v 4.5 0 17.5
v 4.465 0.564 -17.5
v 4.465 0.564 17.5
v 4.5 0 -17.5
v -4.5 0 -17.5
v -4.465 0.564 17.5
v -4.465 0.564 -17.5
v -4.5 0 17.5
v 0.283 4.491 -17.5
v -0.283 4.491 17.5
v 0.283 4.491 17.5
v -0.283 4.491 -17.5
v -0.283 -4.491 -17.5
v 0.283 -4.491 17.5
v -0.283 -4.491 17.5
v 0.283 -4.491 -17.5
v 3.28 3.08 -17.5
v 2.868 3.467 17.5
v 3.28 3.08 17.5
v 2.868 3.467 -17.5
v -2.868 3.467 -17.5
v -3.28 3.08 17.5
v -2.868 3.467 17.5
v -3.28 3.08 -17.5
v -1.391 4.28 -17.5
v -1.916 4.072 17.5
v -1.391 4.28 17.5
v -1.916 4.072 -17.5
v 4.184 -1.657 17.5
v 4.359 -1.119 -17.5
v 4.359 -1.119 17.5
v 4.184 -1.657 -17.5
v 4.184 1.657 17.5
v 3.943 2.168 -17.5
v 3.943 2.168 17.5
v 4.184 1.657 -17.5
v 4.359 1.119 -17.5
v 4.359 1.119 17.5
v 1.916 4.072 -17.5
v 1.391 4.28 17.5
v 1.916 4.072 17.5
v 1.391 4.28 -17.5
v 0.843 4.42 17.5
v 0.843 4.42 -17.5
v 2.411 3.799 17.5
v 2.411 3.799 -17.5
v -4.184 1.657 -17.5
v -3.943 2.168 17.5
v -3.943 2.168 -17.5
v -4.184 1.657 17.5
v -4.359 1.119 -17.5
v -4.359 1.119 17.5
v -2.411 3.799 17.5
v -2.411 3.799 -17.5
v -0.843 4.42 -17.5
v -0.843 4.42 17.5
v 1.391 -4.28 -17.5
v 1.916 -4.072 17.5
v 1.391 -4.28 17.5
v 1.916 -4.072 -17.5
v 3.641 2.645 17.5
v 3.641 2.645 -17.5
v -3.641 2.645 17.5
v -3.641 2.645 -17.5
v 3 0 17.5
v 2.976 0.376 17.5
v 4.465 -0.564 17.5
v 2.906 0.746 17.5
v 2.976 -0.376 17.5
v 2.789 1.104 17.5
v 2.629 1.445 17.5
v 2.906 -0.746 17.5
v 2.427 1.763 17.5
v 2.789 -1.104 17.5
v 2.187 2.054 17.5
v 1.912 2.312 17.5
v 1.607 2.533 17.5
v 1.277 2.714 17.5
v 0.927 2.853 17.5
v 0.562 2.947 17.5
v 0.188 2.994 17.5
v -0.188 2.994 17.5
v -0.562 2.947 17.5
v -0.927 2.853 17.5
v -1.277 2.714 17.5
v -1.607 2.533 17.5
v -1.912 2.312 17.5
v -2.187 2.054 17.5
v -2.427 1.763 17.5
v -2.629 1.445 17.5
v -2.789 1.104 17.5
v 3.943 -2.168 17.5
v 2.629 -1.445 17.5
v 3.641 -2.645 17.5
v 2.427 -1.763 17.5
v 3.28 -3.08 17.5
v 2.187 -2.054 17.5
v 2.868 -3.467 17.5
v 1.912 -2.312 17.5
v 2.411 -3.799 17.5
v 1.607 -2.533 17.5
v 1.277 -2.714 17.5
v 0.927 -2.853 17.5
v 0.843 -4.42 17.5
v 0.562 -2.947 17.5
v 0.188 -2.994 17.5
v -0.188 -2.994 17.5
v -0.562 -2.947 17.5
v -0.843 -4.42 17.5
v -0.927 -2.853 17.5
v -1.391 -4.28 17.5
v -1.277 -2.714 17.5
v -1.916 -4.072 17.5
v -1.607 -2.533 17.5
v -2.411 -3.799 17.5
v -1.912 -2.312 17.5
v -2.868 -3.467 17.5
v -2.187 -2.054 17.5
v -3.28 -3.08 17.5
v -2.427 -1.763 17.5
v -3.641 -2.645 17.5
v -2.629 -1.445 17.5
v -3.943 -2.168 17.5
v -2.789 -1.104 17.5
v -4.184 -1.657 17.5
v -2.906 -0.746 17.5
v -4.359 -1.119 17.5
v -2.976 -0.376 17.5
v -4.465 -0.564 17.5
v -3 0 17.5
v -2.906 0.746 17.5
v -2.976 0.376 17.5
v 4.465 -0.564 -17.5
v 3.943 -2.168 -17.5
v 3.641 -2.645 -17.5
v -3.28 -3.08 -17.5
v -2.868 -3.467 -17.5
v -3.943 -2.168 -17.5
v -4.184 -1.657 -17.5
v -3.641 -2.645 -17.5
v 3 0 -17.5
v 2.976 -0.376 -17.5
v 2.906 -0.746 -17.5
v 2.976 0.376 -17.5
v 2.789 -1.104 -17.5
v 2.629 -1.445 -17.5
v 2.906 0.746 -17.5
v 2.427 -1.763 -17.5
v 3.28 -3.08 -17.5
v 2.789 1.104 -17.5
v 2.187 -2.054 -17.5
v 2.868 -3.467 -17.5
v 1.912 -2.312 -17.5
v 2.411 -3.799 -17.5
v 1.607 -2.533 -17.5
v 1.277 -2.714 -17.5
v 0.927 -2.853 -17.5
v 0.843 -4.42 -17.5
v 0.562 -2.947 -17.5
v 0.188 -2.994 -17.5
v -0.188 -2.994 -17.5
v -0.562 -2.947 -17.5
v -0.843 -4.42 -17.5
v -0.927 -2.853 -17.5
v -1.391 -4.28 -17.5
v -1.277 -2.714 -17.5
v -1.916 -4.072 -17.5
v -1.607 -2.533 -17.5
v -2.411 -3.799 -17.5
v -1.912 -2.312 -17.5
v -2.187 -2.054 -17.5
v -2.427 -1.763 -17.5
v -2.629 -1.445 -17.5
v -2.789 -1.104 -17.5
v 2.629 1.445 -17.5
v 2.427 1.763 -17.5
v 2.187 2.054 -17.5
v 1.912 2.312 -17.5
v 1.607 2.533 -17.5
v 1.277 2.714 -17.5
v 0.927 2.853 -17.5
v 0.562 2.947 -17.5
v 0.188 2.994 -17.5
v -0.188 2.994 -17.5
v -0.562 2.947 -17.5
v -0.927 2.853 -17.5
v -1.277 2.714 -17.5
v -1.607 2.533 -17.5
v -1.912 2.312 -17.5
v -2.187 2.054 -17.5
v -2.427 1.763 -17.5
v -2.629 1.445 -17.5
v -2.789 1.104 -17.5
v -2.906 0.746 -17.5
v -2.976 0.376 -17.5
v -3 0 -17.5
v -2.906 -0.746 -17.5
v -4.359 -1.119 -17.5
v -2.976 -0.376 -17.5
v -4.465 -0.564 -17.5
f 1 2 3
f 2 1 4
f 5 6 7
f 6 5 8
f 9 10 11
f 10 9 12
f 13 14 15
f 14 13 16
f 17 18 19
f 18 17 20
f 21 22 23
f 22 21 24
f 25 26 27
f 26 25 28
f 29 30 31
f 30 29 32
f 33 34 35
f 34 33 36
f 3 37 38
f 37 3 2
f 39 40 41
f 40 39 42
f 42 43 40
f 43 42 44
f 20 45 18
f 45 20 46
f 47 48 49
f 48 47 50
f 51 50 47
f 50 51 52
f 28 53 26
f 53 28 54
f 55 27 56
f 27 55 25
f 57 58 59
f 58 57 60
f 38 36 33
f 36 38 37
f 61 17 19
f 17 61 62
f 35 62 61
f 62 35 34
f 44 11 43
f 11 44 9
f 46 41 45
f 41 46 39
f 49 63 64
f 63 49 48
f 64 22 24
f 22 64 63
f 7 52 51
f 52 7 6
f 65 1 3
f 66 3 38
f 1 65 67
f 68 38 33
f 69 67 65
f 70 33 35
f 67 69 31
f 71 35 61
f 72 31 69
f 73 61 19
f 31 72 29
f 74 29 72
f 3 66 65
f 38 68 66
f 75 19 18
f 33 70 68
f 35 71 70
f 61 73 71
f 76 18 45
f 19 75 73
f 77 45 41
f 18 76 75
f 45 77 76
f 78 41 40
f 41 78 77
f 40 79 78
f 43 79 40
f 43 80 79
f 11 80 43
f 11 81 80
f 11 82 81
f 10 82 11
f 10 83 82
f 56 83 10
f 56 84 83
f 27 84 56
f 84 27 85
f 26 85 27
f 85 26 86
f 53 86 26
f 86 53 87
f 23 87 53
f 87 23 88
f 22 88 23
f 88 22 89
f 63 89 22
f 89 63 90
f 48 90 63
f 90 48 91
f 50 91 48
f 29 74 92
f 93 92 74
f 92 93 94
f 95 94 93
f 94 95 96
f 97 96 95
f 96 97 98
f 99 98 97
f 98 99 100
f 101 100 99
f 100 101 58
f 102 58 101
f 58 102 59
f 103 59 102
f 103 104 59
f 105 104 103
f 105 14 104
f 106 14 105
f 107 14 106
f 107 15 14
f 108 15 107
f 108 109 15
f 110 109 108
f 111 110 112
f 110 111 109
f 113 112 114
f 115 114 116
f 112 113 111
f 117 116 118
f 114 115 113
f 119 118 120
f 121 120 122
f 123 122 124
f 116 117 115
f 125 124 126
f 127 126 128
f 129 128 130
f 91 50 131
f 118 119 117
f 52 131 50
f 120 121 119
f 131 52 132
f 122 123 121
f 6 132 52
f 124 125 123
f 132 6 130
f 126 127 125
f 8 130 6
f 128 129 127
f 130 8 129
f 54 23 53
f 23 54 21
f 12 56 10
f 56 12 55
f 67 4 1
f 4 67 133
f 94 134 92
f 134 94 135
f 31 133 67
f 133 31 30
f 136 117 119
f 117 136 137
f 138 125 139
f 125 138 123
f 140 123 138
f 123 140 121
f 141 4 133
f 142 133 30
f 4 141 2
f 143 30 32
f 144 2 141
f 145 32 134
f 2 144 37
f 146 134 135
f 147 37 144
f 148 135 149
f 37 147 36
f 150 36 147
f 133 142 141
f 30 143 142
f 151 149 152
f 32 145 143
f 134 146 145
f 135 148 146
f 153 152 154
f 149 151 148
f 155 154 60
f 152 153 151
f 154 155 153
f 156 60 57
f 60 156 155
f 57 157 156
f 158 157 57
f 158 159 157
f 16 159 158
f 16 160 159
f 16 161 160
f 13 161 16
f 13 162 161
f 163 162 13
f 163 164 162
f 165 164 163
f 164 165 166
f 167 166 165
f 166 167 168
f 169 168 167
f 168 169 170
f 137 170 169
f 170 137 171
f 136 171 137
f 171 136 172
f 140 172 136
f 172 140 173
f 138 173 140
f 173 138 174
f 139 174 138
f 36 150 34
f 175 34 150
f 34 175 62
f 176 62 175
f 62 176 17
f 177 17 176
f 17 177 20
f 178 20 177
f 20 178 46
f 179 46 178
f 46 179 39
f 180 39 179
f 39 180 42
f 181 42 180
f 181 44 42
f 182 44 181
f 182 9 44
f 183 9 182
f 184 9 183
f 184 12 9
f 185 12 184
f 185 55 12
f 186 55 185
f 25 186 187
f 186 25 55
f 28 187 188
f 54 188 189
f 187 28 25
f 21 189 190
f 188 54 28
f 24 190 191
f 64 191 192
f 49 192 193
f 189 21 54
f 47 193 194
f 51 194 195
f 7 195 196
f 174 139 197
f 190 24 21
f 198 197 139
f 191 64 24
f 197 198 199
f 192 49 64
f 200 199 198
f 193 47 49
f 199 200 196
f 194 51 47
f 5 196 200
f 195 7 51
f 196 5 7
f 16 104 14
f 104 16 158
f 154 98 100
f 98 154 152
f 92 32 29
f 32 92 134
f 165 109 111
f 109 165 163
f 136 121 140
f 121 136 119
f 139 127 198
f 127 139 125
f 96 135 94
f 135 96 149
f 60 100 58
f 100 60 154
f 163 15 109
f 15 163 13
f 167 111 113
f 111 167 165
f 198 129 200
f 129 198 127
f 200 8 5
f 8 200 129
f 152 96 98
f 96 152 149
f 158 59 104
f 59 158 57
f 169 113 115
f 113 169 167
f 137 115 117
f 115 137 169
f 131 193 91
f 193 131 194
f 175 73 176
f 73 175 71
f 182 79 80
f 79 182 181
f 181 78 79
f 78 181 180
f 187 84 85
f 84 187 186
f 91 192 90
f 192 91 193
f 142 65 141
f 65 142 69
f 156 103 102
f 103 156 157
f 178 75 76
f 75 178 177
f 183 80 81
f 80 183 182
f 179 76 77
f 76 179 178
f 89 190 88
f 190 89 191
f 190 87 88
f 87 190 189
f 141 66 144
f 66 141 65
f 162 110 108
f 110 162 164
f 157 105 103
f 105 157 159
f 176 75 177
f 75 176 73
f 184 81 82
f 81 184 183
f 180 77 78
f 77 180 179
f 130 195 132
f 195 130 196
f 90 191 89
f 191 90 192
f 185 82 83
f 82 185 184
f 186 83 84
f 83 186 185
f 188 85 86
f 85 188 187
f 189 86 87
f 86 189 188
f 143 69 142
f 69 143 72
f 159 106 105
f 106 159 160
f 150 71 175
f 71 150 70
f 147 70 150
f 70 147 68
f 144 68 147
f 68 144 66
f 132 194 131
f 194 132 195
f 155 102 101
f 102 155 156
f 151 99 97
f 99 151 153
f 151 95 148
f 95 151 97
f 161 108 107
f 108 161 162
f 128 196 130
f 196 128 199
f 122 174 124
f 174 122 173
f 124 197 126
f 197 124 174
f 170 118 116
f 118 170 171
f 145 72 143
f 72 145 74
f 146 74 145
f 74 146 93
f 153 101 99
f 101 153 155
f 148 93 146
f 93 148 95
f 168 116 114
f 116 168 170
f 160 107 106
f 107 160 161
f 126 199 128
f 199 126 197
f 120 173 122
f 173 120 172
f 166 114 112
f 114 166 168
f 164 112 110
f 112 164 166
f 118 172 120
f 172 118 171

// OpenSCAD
$fn = 50;


difference() {
	union() {
		translate(v = [0, 0, -17.5000000000]) {
			cylinder(h = 35, r = 4.5000000000);
		}
	}
	union() {
		translate(v = [0, 0, -100.0000000000]) {
			cylinder(h = 200, r = 3);
		}
	}
}
